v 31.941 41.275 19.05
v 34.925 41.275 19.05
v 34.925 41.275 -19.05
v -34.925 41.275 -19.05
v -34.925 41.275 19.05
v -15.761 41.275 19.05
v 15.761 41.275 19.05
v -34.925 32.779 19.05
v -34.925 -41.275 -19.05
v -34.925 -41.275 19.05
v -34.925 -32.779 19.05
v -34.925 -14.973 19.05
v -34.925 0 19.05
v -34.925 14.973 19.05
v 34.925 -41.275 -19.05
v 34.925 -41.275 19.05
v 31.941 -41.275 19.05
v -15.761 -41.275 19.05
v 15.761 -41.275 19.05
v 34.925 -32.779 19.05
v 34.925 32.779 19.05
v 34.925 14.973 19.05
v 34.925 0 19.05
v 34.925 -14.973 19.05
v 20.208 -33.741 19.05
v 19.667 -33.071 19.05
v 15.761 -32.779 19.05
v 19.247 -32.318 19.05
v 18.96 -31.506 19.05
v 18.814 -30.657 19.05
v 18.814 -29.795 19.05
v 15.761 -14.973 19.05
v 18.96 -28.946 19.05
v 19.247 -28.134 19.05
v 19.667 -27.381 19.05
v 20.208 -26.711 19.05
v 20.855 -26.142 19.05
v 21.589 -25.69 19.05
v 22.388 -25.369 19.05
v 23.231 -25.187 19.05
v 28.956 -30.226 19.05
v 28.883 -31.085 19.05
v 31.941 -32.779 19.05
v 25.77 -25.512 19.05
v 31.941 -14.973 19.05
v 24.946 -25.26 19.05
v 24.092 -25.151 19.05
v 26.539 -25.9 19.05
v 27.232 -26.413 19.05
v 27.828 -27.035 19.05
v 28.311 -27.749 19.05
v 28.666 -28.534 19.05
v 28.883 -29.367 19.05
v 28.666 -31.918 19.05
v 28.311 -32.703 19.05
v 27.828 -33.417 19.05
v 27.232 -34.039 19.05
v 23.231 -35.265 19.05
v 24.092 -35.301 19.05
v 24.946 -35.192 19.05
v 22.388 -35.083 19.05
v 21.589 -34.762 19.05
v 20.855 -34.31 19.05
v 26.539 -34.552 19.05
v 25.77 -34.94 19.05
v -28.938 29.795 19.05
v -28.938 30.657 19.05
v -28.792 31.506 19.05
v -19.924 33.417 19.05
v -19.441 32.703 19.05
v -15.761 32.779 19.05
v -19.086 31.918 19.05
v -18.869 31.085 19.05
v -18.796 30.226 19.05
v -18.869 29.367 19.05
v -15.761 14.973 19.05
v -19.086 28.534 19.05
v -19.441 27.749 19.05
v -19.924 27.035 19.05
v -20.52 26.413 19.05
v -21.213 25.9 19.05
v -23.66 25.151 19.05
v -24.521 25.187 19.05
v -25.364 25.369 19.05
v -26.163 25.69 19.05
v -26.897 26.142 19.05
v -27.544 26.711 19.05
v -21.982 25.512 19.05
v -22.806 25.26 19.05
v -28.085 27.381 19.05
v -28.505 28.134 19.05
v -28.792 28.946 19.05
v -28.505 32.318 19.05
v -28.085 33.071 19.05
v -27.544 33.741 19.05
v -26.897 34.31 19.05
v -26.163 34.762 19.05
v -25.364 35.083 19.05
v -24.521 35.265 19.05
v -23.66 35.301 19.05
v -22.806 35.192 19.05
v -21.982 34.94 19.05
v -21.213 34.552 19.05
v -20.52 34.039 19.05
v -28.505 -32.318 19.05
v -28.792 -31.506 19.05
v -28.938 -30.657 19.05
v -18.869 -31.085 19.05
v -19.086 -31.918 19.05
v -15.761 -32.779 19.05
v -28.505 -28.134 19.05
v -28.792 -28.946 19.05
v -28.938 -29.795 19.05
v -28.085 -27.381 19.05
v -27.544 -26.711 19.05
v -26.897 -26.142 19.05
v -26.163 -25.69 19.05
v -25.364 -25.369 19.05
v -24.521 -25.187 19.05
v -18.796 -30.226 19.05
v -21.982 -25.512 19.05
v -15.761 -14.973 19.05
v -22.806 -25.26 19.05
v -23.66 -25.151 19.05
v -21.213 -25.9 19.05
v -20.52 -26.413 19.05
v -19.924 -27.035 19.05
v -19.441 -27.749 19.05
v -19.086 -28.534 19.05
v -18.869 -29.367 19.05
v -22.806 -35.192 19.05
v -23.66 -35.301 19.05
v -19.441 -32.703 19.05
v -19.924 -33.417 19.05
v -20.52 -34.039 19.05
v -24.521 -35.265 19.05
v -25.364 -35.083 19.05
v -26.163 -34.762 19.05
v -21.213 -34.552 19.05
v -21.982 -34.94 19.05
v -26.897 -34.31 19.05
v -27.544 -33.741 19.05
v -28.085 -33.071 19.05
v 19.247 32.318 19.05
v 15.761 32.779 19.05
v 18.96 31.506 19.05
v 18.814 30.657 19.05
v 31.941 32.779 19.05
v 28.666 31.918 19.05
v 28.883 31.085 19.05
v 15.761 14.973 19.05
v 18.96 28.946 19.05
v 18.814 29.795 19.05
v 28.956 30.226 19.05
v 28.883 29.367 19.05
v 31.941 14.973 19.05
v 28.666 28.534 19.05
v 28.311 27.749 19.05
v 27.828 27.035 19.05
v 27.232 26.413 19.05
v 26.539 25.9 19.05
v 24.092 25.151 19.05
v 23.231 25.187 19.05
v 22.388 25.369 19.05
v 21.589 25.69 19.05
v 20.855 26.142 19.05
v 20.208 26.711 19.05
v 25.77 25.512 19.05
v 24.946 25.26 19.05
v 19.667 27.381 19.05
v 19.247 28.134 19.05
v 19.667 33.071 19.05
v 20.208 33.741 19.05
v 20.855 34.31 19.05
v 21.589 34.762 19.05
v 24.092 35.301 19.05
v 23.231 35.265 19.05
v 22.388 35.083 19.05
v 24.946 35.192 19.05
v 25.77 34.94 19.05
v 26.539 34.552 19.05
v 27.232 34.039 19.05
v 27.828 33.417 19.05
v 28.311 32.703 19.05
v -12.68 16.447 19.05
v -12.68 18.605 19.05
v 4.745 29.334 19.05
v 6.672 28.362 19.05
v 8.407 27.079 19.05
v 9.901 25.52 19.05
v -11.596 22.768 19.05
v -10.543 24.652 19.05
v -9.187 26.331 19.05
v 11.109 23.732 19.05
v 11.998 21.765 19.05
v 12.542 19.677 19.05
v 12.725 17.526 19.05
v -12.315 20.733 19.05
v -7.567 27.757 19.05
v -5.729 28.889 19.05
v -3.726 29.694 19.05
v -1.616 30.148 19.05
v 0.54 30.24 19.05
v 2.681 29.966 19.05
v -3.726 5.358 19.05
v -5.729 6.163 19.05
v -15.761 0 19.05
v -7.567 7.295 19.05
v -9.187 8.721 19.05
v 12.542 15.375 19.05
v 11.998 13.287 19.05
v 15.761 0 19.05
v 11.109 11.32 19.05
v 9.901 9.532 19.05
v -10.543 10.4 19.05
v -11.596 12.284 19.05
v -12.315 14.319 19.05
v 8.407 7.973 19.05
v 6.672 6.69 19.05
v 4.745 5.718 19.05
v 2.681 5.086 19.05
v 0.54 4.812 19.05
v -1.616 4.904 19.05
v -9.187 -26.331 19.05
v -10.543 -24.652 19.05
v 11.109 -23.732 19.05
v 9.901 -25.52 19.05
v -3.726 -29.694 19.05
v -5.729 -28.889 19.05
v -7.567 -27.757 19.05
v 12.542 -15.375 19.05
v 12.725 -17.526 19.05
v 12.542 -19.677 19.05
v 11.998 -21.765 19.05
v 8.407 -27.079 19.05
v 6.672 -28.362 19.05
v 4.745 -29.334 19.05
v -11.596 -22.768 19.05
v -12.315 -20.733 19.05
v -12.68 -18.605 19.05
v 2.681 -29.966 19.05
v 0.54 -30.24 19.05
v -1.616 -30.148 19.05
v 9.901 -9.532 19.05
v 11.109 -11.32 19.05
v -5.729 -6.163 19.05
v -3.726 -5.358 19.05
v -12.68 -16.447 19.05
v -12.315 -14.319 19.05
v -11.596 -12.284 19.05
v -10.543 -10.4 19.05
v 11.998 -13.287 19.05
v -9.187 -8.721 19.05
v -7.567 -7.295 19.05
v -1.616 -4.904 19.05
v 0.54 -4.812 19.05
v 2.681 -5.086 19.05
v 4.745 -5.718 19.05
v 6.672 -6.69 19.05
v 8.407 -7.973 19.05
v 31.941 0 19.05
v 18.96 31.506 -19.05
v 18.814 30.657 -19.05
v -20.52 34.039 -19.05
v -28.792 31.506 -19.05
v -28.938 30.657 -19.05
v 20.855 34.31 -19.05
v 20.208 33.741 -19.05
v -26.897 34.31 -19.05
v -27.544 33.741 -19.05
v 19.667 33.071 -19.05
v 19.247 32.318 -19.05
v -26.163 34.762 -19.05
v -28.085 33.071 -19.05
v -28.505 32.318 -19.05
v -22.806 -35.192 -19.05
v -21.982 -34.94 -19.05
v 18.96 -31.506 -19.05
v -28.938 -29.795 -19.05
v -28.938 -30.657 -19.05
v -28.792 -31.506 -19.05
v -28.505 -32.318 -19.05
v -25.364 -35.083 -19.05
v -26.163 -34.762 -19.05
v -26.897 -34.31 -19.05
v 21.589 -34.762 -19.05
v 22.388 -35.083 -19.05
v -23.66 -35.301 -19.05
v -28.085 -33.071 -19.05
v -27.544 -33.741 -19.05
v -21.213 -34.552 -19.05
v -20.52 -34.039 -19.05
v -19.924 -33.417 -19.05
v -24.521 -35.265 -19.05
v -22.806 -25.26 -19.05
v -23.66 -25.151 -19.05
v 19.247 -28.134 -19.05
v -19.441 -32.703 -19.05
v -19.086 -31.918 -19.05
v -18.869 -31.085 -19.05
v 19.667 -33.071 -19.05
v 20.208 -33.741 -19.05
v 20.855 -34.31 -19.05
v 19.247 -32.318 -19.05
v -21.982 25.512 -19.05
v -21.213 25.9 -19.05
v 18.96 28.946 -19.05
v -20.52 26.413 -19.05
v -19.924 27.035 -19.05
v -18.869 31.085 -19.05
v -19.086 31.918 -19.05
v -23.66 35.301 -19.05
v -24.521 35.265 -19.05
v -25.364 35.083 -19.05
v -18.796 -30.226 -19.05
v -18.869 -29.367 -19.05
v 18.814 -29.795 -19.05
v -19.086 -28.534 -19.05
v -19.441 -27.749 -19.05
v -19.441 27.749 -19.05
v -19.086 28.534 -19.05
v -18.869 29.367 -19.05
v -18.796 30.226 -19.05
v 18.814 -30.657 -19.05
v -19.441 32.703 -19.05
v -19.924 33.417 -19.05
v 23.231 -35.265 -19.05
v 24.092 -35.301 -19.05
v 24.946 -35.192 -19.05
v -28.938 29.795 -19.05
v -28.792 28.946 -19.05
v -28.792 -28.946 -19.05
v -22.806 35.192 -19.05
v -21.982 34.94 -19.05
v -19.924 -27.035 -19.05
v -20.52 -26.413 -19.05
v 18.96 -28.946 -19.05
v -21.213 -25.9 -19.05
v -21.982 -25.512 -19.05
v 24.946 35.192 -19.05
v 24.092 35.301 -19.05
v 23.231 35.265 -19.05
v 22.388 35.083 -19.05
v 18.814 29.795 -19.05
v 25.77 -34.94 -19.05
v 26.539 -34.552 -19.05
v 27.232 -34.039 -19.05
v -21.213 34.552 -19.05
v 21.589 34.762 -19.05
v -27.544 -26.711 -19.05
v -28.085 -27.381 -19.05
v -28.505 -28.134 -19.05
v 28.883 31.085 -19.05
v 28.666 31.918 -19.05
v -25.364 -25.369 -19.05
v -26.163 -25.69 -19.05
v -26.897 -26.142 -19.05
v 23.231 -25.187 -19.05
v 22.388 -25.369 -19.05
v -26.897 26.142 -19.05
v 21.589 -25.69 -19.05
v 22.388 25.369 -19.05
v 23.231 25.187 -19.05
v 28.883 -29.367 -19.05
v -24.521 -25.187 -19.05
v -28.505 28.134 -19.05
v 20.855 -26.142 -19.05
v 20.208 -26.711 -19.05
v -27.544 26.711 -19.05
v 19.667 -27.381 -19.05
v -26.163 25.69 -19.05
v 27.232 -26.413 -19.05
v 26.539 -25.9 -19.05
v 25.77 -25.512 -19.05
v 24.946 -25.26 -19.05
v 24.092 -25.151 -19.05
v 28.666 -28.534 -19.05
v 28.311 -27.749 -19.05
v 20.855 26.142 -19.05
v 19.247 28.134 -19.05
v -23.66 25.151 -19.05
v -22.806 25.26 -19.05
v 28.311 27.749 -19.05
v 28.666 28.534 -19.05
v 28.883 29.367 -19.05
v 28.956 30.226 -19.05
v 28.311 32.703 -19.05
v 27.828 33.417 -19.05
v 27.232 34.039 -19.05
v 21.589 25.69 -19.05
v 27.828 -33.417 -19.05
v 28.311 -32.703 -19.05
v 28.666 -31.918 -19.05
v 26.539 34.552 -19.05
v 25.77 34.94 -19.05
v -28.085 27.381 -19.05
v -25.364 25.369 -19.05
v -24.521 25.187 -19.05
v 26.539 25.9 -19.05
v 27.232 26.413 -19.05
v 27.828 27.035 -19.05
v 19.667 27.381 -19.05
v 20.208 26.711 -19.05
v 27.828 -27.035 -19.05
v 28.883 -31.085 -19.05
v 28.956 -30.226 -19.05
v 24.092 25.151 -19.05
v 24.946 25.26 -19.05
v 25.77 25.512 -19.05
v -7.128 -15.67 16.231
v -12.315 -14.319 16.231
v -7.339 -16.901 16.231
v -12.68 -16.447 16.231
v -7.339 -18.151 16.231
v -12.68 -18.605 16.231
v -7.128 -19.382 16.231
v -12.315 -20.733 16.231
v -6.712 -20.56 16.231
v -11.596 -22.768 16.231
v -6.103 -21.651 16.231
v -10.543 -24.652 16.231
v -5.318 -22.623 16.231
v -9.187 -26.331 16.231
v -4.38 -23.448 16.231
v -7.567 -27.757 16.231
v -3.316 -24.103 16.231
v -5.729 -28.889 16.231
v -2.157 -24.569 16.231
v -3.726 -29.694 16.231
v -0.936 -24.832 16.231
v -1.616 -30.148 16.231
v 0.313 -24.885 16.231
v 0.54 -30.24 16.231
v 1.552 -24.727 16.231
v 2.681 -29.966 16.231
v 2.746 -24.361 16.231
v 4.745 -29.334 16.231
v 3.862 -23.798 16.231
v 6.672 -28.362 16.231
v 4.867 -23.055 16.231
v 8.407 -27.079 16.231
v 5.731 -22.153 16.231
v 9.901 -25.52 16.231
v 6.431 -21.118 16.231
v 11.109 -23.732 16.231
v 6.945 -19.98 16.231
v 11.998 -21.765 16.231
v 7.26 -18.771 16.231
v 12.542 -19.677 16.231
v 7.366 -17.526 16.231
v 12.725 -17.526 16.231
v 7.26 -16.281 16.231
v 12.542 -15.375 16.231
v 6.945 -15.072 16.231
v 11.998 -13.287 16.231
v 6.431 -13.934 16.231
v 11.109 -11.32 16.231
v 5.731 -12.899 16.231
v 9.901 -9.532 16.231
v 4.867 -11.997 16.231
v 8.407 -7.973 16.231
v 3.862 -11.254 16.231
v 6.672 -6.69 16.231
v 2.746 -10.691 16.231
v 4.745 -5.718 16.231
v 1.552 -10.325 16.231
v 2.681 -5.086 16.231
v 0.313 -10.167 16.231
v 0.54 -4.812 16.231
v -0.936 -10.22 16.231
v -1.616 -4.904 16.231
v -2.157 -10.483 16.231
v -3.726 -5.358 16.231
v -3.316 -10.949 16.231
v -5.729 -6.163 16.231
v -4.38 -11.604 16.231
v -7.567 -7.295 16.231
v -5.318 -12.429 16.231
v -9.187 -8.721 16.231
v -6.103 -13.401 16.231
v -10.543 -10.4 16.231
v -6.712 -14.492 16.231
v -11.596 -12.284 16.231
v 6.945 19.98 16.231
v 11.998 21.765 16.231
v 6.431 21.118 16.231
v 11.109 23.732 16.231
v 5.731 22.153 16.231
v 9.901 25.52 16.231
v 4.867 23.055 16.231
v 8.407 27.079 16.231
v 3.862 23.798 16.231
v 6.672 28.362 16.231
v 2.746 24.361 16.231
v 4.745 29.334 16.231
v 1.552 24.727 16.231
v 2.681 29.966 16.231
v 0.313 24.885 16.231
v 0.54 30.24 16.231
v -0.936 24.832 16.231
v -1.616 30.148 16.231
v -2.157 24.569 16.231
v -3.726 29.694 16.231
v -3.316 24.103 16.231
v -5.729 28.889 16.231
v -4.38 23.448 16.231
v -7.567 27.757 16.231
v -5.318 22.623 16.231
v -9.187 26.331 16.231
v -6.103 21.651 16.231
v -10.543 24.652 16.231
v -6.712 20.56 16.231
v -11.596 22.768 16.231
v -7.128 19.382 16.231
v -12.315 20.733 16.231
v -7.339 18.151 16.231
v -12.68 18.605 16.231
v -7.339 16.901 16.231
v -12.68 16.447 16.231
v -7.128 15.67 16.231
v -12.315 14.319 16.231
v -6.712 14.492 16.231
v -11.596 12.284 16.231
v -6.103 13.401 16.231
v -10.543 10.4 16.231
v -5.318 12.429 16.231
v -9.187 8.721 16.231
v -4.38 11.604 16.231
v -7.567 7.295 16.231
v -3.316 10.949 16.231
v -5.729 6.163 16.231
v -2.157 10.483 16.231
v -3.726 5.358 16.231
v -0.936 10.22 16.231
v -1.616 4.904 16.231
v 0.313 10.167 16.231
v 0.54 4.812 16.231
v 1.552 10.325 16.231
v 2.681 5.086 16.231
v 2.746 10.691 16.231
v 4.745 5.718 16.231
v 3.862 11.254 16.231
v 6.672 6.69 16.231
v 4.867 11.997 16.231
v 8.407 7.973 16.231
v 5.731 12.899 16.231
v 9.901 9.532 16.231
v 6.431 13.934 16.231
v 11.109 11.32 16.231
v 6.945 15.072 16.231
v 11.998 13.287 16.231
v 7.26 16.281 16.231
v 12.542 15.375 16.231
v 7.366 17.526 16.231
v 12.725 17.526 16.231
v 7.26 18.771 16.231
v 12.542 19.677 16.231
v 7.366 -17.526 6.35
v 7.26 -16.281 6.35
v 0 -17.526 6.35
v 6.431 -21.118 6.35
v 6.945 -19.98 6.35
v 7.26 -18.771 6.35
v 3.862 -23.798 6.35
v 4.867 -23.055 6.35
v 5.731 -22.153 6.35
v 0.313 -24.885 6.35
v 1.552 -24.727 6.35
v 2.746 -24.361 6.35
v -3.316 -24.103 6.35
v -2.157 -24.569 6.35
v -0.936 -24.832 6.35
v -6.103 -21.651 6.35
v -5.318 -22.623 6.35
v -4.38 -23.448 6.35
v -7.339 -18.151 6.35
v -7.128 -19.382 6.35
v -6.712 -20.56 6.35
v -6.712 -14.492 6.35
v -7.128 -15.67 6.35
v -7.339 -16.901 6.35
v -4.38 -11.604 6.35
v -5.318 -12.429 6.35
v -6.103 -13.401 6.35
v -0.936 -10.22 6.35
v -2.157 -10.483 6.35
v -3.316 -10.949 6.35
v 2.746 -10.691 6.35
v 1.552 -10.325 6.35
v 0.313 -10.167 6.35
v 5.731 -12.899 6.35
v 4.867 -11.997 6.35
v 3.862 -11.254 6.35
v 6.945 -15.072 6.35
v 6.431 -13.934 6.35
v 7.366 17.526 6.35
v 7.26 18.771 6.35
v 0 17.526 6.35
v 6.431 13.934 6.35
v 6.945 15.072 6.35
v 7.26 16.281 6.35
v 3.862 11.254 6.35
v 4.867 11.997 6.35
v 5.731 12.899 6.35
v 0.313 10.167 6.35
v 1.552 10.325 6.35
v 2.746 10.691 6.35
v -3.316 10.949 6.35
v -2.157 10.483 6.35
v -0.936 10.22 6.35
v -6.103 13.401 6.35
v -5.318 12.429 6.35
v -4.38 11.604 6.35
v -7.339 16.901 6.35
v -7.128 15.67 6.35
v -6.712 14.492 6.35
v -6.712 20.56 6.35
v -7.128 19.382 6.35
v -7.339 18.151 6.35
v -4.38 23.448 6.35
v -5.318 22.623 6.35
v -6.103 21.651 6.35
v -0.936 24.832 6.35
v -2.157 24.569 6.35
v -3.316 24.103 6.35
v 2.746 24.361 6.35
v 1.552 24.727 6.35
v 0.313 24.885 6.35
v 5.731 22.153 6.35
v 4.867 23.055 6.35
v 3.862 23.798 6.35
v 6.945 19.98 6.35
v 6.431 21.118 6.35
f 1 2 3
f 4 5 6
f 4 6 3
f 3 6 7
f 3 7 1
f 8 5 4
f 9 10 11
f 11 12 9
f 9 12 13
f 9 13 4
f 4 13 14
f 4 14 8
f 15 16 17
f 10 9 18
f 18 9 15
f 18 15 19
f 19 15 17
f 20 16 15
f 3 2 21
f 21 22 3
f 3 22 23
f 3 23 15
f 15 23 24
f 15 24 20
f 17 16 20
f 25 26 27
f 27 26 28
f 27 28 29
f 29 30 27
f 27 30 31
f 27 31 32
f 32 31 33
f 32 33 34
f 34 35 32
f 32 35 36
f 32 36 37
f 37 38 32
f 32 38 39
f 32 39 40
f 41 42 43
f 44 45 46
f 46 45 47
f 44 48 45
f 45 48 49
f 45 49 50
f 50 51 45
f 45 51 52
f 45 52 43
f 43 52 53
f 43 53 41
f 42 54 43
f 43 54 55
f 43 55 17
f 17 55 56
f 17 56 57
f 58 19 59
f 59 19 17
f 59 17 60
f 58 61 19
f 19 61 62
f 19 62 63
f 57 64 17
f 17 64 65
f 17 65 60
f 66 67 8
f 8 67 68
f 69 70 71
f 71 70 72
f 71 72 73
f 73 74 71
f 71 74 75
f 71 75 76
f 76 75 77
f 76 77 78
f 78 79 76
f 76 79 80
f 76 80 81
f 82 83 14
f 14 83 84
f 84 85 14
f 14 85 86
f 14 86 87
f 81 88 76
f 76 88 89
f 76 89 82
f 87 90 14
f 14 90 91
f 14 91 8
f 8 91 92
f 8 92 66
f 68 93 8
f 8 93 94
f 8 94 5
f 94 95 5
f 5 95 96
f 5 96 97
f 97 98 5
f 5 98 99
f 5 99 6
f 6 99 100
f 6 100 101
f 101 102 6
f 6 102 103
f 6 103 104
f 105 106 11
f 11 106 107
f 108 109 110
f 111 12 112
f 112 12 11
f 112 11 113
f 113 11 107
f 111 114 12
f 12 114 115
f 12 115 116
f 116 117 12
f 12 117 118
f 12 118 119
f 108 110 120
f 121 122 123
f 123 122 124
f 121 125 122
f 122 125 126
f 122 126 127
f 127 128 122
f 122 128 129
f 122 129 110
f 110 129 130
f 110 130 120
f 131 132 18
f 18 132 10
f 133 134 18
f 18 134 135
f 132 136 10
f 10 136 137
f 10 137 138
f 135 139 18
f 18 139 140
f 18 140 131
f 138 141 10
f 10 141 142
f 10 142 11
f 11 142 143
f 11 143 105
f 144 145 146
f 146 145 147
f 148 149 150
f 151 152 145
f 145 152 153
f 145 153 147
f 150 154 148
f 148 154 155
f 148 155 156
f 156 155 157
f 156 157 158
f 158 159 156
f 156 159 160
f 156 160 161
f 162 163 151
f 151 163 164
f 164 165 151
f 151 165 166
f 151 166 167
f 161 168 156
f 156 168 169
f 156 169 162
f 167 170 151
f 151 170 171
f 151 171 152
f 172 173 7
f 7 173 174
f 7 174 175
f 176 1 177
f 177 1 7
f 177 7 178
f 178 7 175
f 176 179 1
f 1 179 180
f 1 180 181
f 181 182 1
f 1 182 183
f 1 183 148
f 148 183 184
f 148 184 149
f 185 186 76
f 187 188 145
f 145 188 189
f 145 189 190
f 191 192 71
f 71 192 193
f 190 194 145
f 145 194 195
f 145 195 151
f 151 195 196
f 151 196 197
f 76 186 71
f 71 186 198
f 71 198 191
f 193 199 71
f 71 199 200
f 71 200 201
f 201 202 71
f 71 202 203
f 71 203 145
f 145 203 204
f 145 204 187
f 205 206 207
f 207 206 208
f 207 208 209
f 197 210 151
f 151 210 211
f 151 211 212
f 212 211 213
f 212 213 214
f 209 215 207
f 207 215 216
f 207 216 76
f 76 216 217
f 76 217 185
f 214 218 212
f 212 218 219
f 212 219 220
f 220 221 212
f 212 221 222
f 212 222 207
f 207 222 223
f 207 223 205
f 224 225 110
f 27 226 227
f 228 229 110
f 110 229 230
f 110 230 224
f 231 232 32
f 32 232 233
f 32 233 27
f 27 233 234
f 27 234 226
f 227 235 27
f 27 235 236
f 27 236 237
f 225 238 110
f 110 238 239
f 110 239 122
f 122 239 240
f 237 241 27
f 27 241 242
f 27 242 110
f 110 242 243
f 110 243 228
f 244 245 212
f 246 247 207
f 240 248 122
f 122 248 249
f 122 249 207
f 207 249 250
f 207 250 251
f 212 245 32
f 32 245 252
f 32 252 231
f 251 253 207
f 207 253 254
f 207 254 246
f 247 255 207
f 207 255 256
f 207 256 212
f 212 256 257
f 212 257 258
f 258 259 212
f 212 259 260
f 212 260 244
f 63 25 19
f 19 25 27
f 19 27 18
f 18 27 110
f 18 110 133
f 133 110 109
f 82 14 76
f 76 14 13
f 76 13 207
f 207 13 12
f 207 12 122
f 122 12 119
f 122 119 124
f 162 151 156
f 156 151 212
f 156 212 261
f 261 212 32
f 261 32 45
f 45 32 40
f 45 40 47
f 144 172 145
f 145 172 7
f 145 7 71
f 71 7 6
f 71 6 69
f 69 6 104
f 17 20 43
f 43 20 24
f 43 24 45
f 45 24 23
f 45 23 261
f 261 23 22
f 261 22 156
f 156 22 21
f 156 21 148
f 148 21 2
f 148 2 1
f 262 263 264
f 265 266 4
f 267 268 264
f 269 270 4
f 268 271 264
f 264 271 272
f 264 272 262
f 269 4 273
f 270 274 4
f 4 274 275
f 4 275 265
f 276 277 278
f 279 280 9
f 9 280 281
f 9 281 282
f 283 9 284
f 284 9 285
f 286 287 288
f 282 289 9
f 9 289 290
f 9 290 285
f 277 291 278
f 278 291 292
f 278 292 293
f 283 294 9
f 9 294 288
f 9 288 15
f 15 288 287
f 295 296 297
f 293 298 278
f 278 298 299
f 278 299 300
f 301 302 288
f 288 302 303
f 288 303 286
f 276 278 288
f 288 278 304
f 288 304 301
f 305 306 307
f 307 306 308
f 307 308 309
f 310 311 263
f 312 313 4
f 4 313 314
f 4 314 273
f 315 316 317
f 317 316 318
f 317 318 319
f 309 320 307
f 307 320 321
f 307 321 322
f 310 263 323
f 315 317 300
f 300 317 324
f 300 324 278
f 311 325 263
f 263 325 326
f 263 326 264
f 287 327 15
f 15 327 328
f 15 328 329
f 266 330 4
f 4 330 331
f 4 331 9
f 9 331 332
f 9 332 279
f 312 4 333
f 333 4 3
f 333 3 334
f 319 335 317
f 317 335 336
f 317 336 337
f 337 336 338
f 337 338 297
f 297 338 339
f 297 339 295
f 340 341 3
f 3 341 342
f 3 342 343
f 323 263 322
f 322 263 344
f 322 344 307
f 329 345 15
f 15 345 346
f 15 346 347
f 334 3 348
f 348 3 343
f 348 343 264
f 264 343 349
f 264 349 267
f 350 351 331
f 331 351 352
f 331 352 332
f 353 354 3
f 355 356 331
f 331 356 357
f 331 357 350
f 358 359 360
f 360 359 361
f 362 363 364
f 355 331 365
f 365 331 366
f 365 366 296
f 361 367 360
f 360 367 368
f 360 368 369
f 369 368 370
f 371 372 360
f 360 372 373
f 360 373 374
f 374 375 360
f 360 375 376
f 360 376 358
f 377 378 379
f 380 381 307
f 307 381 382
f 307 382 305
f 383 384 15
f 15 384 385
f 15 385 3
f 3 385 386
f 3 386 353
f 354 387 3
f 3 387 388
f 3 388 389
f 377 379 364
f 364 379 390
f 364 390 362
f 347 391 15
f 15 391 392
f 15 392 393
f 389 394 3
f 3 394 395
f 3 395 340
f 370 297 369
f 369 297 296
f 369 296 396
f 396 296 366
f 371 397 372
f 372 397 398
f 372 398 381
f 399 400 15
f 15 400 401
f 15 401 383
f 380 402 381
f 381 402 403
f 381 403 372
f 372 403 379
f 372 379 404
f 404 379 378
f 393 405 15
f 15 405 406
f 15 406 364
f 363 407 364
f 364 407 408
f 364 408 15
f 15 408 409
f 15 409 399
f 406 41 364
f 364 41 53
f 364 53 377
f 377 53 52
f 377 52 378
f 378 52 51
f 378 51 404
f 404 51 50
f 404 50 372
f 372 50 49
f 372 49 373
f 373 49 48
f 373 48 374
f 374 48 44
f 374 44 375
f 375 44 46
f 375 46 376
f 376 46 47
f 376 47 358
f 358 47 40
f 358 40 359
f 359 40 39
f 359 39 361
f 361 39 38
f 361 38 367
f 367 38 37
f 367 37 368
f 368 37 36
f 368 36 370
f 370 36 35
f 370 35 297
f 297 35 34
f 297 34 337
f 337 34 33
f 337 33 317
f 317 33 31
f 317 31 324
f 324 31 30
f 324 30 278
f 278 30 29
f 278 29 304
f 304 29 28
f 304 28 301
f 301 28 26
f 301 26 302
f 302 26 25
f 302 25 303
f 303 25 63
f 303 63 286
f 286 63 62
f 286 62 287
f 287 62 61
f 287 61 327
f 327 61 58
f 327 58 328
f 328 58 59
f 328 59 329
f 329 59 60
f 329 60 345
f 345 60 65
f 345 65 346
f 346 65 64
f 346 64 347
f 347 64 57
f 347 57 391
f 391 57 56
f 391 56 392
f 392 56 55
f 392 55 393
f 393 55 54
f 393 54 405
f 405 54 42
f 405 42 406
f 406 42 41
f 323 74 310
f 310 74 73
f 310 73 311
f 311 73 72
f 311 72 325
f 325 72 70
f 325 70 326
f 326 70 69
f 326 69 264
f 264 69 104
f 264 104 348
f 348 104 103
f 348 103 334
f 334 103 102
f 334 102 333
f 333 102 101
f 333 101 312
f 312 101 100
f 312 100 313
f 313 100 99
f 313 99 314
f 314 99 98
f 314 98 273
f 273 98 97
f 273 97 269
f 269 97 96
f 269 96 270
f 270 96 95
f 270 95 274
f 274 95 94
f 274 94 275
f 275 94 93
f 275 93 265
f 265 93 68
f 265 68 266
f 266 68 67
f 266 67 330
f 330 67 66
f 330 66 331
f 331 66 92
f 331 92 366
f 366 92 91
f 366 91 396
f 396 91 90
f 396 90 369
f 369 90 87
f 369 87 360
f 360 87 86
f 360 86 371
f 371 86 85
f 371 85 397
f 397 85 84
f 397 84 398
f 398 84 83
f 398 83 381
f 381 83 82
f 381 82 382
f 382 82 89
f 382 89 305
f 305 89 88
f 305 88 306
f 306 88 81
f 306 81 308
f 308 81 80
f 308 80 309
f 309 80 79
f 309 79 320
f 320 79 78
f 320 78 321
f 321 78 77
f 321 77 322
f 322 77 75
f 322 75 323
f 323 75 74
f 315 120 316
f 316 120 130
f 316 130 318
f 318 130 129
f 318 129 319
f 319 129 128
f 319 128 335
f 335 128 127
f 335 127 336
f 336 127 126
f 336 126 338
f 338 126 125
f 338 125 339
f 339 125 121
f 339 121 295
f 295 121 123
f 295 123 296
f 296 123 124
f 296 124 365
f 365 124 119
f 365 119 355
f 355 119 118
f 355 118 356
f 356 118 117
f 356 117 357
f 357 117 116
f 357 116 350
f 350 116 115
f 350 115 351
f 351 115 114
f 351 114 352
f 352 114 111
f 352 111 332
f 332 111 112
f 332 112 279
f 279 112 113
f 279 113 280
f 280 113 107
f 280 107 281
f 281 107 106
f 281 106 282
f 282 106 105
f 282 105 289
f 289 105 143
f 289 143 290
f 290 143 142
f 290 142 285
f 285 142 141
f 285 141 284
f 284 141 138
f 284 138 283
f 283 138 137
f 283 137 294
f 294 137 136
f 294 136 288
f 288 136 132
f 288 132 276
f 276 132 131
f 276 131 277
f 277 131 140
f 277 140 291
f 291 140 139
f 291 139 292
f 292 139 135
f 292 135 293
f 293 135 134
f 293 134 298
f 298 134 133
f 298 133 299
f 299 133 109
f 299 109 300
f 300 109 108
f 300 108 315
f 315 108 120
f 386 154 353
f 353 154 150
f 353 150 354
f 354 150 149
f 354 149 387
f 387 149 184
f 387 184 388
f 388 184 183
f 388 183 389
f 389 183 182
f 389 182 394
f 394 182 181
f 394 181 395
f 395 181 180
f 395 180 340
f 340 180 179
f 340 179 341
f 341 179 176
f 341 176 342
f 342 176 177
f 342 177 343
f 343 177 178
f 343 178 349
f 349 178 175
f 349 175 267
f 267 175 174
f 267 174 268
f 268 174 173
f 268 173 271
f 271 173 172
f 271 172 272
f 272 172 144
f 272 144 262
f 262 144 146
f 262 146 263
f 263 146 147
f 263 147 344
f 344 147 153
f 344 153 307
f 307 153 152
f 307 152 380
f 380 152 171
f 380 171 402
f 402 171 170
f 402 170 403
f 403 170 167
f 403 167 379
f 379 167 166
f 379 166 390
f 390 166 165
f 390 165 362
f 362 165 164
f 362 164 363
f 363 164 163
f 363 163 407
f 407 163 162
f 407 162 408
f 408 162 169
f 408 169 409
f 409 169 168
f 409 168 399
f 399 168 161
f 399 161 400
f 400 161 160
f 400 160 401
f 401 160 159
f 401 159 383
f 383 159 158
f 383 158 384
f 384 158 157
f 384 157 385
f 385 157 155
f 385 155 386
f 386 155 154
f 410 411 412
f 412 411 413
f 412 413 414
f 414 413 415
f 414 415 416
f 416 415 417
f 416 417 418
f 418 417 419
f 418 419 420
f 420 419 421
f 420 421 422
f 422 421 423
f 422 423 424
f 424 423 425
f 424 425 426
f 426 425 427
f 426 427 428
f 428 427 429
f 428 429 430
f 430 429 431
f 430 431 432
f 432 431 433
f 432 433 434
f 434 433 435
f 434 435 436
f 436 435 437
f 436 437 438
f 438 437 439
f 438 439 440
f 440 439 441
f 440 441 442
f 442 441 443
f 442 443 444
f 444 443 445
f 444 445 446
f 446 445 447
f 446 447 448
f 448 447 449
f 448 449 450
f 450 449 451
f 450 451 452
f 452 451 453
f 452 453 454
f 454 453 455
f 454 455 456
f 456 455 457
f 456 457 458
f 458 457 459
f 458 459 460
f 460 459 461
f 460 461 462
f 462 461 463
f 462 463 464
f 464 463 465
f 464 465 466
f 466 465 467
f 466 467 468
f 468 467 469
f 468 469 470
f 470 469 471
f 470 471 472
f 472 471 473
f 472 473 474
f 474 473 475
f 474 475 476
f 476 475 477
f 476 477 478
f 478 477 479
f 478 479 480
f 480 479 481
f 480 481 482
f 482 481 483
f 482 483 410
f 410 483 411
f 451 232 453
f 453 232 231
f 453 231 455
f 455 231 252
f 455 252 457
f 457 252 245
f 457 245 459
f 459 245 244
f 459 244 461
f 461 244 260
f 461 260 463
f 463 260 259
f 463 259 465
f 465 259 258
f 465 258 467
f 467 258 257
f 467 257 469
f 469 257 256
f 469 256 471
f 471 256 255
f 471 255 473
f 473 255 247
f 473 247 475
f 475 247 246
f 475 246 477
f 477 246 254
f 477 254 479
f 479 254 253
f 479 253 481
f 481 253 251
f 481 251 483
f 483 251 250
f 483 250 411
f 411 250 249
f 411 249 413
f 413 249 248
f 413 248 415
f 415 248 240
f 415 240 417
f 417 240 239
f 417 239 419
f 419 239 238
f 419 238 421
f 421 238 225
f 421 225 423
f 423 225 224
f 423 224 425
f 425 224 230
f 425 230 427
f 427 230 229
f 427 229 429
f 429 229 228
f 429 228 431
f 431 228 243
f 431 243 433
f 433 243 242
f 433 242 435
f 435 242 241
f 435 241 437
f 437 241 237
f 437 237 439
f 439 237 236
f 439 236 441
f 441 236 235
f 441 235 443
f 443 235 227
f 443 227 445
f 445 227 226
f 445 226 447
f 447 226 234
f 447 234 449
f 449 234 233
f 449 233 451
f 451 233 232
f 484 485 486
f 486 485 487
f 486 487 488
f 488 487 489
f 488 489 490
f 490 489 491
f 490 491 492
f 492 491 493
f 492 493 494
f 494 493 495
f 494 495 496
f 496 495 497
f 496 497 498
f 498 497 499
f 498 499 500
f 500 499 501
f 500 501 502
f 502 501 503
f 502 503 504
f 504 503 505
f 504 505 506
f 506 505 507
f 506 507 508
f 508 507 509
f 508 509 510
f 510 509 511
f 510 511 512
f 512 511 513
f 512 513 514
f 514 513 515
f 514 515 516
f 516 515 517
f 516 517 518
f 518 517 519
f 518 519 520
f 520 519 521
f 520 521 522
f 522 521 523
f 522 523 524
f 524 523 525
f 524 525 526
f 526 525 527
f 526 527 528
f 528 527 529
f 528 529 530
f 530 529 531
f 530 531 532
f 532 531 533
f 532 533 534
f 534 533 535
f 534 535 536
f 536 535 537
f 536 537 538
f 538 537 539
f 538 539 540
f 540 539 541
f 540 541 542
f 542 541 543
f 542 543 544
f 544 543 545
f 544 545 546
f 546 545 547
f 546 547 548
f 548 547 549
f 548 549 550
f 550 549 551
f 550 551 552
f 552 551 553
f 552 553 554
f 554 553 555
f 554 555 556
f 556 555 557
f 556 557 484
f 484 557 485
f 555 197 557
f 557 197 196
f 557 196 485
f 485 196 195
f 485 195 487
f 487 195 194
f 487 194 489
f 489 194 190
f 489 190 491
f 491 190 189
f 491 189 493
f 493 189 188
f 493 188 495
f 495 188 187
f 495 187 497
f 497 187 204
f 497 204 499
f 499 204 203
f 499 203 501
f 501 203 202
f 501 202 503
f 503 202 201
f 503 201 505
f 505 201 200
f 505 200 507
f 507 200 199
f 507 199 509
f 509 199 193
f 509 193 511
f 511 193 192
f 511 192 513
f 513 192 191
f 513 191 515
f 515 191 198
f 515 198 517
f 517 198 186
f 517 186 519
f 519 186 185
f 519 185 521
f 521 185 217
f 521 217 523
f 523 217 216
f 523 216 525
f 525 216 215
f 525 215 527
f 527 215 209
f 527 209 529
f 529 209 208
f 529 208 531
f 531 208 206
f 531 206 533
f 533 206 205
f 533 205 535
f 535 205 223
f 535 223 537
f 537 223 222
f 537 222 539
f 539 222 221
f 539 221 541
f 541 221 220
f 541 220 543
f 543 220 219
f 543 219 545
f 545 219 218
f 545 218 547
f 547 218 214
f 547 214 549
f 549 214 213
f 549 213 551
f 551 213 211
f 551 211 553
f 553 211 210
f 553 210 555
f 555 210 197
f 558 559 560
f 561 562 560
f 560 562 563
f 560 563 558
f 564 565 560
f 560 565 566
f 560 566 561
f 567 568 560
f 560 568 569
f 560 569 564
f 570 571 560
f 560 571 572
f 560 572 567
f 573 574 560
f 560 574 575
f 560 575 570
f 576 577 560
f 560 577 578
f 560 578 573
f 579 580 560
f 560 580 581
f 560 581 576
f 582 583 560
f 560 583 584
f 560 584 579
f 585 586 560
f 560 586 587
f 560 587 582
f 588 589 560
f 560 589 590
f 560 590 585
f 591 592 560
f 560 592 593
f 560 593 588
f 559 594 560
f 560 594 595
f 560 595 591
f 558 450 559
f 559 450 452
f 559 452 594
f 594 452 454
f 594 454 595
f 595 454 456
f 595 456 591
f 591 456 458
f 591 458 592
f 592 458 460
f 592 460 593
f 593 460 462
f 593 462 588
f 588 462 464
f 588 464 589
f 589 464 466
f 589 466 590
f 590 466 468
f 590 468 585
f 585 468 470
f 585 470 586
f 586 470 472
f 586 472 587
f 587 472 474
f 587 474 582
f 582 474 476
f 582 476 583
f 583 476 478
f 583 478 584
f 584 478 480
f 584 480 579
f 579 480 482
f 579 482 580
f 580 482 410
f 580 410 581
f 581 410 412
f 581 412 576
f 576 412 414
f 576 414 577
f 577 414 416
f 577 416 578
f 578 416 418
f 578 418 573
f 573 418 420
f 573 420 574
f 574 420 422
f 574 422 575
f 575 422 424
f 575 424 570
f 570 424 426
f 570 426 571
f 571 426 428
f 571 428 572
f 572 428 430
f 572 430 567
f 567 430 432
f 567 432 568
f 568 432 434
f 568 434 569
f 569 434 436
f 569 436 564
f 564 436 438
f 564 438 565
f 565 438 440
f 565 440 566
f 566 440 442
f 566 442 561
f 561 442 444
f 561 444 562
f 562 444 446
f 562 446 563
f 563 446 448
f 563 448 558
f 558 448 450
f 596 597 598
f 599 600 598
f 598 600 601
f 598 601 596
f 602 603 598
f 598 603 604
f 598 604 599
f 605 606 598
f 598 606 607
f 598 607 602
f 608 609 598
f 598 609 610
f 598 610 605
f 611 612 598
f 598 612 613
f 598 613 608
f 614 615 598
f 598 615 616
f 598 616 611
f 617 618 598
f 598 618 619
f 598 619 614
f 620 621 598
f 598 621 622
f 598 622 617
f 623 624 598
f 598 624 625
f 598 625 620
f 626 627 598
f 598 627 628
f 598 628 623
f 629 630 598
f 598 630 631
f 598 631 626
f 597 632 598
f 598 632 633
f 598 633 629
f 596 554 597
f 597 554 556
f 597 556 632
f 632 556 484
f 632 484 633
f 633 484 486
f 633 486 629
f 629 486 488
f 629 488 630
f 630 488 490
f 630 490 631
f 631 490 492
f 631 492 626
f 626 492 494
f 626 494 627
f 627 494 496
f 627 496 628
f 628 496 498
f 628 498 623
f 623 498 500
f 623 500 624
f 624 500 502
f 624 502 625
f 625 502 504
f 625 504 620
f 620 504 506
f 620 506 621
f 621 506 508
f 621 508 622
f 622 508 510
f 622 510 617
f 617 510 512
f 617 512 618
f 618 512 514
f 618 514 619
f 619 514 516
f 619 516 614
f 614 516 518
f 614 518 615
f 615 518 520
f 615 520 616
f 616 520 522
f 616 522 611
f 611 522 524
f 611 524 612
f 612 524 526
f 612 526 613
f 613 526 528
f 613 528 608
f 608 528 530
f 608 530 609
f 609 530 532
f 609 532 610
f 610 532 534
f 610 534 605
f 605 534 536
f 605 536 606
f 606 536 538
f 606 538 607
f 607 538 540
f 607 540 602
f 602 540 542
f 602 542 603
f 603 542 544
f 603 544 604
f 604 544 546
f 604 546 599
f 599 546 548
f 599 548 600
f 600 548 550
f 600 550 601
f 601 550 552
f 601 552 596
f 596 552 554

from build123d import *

# Parameters (mm, degrees)
SKETCH1_W           = 82.55
SKETCH1_H           = 69.85
BOSS_EXTRUDE1_DEPTH = 19.05
CUT_EXTRUDE2_START  = -19.05
SKETCH2_R           = 5.08
CUT_EXTRUDE2_DEPTH  = 38.1
CUT_EXTRUDE4_START  = -19.05
SKETCH3_R           = 5.08
CUT_EXTRUDE4_DEPTH  = 38.1
CUT_EXTRUDE6_START  = 19.05
SKETCH4_R           = 7.366
CUT_EXTRUDE6_DEPTH  = 12.7
CUT_EXTRUDE8_START  = 19.05
SKETCH5_R           = 12.7254
CUT_EXTRUDE8_DEPTH  = 2.8194
CUT_EXTRUDE10_START = 19.05
SKETCH6_R           = 7.366
CUT_EXTRUDE10_DEPTH = 12.7
CUT_EXTRUDE12_START = 19.05
SKETCH7_R           = 12.7254
CUT_EXTRUDE12_DEPTH = 2.8194


with BuildPart() as part:
    # Sketch1 → Boss-Extrude1 (new, symmetric)
    with BuildSketch(Plane(origin=(0, 0, 0), x_dir=(0, 1, 0), z_dir=(0, 0, 1))):
        Rectangle(SKETCH1_W, SKETCH1_H)
    extrude(amount=BOSS_EXTRUDE1_DEPTH, both=True)

    # Sketch2 → Cut-Extrude2 (cut)
    with BuildSketch(Plane(origin=(0, 0, 0), x_dir=(0, 1, 0), z_dir=(0, 0, 1)).offset(CUT_EXTRUDE2_START)):
        with Locations(Location((-30.226, -23.876, 0), (0, 0, 270))):
            Circle(SKETCH2_R)
    extrude(amount=CUT_EXTRUDE2_DEPTH, mode=Mode.SUBTRACT)

    # Sketch3 → Cut-Extrude4 (cut)
    with BuildSketch(Plane(origin=(0, 0, 0), x_dir=(0, 1, 0), z_dir=(0, 0, 1)).offset(CUT_EXTRUDE4_START)):
        with Locations(Location((30.226, -23.876, 0), (0, 0, 270))):
            Circle(SKETCH3_R)
        with Locations(Location((-30.226, 23.876, 0), (0, 0, 270))):
            Circle(SKETCH3_R)
        with Locations(Location((30.226, 23.876, 0), (0, 0, 270))):
            Circle(SKETCH3_R)
    extrude(amount=CUT_EXTRUDE4_DEPTH, mode=Mode.SUBTRACT)

    # Sketch4 → Cut-Extrude6 (cut)
    with BuildSketch(Plane(origin=(0, 0, 0), x_dir=(0, 1, 0), z_dir=(0, 0, 1)).offset(CUT_EXTRUDE6_START)):
        with Locations(Location((-17.526, 0, 0), (0, 0, 270))):
            Circle(SKETCH4_R)
    extrude(amount=-CUT_EXTRUDE6_DEPTH, mode=Mode.SUBTRACT)

    # Sketch5 → Cut-Extrude8 (cut)
    with BuildSketch(Plane(origin=(0, 0, 0), x_dir=(0, 1, 0), z_dir=(0, 0, 1)).offset(CUT_EXTRUDE8_START)):
        with Locations(Location((-17.526, 0, 0), (0, 0, 270))):
            Circle(SKETCH5_R)
    extrude(amount=-CUT_EXTRUDE8_DEPTH, mode=Mode.SUBTRACT)

    # Sketch6 → Cut-Extrude10 (cut)
    with BuildSketch(Plane(origin=(0, 0, 0), x_dir=(0, 1, 0), z_dir=(0, 0, 1)).offset(CUT_EXTRUDE10_START)):
        with Locations(Location((17.526, 0, 0), (0, 0, 270))):
            Circle(SKETCH6_R)
    extrude(amount=-CUT_EXTRUDE10_DEPTH, mode=Mode.SUBTRACT)

    # Sketch7 → Cut-Extrude12 (cut)
    with BuildSketch(Plane(origin=(0, 0, 0), x_dir=(0, 1, 0), z_dir=(0, 0, 1)).offset(CUT_EXTRUDE12_START)):
        with Locations(Location((17.526, 0, 0), (0, 0, 270))):
            Circle(SKETCH7_R)
    extrude(amount=-CUT_EXTRUDE12_DEPTH, mode=Mode.SUBTRACT)


solid = part.part
